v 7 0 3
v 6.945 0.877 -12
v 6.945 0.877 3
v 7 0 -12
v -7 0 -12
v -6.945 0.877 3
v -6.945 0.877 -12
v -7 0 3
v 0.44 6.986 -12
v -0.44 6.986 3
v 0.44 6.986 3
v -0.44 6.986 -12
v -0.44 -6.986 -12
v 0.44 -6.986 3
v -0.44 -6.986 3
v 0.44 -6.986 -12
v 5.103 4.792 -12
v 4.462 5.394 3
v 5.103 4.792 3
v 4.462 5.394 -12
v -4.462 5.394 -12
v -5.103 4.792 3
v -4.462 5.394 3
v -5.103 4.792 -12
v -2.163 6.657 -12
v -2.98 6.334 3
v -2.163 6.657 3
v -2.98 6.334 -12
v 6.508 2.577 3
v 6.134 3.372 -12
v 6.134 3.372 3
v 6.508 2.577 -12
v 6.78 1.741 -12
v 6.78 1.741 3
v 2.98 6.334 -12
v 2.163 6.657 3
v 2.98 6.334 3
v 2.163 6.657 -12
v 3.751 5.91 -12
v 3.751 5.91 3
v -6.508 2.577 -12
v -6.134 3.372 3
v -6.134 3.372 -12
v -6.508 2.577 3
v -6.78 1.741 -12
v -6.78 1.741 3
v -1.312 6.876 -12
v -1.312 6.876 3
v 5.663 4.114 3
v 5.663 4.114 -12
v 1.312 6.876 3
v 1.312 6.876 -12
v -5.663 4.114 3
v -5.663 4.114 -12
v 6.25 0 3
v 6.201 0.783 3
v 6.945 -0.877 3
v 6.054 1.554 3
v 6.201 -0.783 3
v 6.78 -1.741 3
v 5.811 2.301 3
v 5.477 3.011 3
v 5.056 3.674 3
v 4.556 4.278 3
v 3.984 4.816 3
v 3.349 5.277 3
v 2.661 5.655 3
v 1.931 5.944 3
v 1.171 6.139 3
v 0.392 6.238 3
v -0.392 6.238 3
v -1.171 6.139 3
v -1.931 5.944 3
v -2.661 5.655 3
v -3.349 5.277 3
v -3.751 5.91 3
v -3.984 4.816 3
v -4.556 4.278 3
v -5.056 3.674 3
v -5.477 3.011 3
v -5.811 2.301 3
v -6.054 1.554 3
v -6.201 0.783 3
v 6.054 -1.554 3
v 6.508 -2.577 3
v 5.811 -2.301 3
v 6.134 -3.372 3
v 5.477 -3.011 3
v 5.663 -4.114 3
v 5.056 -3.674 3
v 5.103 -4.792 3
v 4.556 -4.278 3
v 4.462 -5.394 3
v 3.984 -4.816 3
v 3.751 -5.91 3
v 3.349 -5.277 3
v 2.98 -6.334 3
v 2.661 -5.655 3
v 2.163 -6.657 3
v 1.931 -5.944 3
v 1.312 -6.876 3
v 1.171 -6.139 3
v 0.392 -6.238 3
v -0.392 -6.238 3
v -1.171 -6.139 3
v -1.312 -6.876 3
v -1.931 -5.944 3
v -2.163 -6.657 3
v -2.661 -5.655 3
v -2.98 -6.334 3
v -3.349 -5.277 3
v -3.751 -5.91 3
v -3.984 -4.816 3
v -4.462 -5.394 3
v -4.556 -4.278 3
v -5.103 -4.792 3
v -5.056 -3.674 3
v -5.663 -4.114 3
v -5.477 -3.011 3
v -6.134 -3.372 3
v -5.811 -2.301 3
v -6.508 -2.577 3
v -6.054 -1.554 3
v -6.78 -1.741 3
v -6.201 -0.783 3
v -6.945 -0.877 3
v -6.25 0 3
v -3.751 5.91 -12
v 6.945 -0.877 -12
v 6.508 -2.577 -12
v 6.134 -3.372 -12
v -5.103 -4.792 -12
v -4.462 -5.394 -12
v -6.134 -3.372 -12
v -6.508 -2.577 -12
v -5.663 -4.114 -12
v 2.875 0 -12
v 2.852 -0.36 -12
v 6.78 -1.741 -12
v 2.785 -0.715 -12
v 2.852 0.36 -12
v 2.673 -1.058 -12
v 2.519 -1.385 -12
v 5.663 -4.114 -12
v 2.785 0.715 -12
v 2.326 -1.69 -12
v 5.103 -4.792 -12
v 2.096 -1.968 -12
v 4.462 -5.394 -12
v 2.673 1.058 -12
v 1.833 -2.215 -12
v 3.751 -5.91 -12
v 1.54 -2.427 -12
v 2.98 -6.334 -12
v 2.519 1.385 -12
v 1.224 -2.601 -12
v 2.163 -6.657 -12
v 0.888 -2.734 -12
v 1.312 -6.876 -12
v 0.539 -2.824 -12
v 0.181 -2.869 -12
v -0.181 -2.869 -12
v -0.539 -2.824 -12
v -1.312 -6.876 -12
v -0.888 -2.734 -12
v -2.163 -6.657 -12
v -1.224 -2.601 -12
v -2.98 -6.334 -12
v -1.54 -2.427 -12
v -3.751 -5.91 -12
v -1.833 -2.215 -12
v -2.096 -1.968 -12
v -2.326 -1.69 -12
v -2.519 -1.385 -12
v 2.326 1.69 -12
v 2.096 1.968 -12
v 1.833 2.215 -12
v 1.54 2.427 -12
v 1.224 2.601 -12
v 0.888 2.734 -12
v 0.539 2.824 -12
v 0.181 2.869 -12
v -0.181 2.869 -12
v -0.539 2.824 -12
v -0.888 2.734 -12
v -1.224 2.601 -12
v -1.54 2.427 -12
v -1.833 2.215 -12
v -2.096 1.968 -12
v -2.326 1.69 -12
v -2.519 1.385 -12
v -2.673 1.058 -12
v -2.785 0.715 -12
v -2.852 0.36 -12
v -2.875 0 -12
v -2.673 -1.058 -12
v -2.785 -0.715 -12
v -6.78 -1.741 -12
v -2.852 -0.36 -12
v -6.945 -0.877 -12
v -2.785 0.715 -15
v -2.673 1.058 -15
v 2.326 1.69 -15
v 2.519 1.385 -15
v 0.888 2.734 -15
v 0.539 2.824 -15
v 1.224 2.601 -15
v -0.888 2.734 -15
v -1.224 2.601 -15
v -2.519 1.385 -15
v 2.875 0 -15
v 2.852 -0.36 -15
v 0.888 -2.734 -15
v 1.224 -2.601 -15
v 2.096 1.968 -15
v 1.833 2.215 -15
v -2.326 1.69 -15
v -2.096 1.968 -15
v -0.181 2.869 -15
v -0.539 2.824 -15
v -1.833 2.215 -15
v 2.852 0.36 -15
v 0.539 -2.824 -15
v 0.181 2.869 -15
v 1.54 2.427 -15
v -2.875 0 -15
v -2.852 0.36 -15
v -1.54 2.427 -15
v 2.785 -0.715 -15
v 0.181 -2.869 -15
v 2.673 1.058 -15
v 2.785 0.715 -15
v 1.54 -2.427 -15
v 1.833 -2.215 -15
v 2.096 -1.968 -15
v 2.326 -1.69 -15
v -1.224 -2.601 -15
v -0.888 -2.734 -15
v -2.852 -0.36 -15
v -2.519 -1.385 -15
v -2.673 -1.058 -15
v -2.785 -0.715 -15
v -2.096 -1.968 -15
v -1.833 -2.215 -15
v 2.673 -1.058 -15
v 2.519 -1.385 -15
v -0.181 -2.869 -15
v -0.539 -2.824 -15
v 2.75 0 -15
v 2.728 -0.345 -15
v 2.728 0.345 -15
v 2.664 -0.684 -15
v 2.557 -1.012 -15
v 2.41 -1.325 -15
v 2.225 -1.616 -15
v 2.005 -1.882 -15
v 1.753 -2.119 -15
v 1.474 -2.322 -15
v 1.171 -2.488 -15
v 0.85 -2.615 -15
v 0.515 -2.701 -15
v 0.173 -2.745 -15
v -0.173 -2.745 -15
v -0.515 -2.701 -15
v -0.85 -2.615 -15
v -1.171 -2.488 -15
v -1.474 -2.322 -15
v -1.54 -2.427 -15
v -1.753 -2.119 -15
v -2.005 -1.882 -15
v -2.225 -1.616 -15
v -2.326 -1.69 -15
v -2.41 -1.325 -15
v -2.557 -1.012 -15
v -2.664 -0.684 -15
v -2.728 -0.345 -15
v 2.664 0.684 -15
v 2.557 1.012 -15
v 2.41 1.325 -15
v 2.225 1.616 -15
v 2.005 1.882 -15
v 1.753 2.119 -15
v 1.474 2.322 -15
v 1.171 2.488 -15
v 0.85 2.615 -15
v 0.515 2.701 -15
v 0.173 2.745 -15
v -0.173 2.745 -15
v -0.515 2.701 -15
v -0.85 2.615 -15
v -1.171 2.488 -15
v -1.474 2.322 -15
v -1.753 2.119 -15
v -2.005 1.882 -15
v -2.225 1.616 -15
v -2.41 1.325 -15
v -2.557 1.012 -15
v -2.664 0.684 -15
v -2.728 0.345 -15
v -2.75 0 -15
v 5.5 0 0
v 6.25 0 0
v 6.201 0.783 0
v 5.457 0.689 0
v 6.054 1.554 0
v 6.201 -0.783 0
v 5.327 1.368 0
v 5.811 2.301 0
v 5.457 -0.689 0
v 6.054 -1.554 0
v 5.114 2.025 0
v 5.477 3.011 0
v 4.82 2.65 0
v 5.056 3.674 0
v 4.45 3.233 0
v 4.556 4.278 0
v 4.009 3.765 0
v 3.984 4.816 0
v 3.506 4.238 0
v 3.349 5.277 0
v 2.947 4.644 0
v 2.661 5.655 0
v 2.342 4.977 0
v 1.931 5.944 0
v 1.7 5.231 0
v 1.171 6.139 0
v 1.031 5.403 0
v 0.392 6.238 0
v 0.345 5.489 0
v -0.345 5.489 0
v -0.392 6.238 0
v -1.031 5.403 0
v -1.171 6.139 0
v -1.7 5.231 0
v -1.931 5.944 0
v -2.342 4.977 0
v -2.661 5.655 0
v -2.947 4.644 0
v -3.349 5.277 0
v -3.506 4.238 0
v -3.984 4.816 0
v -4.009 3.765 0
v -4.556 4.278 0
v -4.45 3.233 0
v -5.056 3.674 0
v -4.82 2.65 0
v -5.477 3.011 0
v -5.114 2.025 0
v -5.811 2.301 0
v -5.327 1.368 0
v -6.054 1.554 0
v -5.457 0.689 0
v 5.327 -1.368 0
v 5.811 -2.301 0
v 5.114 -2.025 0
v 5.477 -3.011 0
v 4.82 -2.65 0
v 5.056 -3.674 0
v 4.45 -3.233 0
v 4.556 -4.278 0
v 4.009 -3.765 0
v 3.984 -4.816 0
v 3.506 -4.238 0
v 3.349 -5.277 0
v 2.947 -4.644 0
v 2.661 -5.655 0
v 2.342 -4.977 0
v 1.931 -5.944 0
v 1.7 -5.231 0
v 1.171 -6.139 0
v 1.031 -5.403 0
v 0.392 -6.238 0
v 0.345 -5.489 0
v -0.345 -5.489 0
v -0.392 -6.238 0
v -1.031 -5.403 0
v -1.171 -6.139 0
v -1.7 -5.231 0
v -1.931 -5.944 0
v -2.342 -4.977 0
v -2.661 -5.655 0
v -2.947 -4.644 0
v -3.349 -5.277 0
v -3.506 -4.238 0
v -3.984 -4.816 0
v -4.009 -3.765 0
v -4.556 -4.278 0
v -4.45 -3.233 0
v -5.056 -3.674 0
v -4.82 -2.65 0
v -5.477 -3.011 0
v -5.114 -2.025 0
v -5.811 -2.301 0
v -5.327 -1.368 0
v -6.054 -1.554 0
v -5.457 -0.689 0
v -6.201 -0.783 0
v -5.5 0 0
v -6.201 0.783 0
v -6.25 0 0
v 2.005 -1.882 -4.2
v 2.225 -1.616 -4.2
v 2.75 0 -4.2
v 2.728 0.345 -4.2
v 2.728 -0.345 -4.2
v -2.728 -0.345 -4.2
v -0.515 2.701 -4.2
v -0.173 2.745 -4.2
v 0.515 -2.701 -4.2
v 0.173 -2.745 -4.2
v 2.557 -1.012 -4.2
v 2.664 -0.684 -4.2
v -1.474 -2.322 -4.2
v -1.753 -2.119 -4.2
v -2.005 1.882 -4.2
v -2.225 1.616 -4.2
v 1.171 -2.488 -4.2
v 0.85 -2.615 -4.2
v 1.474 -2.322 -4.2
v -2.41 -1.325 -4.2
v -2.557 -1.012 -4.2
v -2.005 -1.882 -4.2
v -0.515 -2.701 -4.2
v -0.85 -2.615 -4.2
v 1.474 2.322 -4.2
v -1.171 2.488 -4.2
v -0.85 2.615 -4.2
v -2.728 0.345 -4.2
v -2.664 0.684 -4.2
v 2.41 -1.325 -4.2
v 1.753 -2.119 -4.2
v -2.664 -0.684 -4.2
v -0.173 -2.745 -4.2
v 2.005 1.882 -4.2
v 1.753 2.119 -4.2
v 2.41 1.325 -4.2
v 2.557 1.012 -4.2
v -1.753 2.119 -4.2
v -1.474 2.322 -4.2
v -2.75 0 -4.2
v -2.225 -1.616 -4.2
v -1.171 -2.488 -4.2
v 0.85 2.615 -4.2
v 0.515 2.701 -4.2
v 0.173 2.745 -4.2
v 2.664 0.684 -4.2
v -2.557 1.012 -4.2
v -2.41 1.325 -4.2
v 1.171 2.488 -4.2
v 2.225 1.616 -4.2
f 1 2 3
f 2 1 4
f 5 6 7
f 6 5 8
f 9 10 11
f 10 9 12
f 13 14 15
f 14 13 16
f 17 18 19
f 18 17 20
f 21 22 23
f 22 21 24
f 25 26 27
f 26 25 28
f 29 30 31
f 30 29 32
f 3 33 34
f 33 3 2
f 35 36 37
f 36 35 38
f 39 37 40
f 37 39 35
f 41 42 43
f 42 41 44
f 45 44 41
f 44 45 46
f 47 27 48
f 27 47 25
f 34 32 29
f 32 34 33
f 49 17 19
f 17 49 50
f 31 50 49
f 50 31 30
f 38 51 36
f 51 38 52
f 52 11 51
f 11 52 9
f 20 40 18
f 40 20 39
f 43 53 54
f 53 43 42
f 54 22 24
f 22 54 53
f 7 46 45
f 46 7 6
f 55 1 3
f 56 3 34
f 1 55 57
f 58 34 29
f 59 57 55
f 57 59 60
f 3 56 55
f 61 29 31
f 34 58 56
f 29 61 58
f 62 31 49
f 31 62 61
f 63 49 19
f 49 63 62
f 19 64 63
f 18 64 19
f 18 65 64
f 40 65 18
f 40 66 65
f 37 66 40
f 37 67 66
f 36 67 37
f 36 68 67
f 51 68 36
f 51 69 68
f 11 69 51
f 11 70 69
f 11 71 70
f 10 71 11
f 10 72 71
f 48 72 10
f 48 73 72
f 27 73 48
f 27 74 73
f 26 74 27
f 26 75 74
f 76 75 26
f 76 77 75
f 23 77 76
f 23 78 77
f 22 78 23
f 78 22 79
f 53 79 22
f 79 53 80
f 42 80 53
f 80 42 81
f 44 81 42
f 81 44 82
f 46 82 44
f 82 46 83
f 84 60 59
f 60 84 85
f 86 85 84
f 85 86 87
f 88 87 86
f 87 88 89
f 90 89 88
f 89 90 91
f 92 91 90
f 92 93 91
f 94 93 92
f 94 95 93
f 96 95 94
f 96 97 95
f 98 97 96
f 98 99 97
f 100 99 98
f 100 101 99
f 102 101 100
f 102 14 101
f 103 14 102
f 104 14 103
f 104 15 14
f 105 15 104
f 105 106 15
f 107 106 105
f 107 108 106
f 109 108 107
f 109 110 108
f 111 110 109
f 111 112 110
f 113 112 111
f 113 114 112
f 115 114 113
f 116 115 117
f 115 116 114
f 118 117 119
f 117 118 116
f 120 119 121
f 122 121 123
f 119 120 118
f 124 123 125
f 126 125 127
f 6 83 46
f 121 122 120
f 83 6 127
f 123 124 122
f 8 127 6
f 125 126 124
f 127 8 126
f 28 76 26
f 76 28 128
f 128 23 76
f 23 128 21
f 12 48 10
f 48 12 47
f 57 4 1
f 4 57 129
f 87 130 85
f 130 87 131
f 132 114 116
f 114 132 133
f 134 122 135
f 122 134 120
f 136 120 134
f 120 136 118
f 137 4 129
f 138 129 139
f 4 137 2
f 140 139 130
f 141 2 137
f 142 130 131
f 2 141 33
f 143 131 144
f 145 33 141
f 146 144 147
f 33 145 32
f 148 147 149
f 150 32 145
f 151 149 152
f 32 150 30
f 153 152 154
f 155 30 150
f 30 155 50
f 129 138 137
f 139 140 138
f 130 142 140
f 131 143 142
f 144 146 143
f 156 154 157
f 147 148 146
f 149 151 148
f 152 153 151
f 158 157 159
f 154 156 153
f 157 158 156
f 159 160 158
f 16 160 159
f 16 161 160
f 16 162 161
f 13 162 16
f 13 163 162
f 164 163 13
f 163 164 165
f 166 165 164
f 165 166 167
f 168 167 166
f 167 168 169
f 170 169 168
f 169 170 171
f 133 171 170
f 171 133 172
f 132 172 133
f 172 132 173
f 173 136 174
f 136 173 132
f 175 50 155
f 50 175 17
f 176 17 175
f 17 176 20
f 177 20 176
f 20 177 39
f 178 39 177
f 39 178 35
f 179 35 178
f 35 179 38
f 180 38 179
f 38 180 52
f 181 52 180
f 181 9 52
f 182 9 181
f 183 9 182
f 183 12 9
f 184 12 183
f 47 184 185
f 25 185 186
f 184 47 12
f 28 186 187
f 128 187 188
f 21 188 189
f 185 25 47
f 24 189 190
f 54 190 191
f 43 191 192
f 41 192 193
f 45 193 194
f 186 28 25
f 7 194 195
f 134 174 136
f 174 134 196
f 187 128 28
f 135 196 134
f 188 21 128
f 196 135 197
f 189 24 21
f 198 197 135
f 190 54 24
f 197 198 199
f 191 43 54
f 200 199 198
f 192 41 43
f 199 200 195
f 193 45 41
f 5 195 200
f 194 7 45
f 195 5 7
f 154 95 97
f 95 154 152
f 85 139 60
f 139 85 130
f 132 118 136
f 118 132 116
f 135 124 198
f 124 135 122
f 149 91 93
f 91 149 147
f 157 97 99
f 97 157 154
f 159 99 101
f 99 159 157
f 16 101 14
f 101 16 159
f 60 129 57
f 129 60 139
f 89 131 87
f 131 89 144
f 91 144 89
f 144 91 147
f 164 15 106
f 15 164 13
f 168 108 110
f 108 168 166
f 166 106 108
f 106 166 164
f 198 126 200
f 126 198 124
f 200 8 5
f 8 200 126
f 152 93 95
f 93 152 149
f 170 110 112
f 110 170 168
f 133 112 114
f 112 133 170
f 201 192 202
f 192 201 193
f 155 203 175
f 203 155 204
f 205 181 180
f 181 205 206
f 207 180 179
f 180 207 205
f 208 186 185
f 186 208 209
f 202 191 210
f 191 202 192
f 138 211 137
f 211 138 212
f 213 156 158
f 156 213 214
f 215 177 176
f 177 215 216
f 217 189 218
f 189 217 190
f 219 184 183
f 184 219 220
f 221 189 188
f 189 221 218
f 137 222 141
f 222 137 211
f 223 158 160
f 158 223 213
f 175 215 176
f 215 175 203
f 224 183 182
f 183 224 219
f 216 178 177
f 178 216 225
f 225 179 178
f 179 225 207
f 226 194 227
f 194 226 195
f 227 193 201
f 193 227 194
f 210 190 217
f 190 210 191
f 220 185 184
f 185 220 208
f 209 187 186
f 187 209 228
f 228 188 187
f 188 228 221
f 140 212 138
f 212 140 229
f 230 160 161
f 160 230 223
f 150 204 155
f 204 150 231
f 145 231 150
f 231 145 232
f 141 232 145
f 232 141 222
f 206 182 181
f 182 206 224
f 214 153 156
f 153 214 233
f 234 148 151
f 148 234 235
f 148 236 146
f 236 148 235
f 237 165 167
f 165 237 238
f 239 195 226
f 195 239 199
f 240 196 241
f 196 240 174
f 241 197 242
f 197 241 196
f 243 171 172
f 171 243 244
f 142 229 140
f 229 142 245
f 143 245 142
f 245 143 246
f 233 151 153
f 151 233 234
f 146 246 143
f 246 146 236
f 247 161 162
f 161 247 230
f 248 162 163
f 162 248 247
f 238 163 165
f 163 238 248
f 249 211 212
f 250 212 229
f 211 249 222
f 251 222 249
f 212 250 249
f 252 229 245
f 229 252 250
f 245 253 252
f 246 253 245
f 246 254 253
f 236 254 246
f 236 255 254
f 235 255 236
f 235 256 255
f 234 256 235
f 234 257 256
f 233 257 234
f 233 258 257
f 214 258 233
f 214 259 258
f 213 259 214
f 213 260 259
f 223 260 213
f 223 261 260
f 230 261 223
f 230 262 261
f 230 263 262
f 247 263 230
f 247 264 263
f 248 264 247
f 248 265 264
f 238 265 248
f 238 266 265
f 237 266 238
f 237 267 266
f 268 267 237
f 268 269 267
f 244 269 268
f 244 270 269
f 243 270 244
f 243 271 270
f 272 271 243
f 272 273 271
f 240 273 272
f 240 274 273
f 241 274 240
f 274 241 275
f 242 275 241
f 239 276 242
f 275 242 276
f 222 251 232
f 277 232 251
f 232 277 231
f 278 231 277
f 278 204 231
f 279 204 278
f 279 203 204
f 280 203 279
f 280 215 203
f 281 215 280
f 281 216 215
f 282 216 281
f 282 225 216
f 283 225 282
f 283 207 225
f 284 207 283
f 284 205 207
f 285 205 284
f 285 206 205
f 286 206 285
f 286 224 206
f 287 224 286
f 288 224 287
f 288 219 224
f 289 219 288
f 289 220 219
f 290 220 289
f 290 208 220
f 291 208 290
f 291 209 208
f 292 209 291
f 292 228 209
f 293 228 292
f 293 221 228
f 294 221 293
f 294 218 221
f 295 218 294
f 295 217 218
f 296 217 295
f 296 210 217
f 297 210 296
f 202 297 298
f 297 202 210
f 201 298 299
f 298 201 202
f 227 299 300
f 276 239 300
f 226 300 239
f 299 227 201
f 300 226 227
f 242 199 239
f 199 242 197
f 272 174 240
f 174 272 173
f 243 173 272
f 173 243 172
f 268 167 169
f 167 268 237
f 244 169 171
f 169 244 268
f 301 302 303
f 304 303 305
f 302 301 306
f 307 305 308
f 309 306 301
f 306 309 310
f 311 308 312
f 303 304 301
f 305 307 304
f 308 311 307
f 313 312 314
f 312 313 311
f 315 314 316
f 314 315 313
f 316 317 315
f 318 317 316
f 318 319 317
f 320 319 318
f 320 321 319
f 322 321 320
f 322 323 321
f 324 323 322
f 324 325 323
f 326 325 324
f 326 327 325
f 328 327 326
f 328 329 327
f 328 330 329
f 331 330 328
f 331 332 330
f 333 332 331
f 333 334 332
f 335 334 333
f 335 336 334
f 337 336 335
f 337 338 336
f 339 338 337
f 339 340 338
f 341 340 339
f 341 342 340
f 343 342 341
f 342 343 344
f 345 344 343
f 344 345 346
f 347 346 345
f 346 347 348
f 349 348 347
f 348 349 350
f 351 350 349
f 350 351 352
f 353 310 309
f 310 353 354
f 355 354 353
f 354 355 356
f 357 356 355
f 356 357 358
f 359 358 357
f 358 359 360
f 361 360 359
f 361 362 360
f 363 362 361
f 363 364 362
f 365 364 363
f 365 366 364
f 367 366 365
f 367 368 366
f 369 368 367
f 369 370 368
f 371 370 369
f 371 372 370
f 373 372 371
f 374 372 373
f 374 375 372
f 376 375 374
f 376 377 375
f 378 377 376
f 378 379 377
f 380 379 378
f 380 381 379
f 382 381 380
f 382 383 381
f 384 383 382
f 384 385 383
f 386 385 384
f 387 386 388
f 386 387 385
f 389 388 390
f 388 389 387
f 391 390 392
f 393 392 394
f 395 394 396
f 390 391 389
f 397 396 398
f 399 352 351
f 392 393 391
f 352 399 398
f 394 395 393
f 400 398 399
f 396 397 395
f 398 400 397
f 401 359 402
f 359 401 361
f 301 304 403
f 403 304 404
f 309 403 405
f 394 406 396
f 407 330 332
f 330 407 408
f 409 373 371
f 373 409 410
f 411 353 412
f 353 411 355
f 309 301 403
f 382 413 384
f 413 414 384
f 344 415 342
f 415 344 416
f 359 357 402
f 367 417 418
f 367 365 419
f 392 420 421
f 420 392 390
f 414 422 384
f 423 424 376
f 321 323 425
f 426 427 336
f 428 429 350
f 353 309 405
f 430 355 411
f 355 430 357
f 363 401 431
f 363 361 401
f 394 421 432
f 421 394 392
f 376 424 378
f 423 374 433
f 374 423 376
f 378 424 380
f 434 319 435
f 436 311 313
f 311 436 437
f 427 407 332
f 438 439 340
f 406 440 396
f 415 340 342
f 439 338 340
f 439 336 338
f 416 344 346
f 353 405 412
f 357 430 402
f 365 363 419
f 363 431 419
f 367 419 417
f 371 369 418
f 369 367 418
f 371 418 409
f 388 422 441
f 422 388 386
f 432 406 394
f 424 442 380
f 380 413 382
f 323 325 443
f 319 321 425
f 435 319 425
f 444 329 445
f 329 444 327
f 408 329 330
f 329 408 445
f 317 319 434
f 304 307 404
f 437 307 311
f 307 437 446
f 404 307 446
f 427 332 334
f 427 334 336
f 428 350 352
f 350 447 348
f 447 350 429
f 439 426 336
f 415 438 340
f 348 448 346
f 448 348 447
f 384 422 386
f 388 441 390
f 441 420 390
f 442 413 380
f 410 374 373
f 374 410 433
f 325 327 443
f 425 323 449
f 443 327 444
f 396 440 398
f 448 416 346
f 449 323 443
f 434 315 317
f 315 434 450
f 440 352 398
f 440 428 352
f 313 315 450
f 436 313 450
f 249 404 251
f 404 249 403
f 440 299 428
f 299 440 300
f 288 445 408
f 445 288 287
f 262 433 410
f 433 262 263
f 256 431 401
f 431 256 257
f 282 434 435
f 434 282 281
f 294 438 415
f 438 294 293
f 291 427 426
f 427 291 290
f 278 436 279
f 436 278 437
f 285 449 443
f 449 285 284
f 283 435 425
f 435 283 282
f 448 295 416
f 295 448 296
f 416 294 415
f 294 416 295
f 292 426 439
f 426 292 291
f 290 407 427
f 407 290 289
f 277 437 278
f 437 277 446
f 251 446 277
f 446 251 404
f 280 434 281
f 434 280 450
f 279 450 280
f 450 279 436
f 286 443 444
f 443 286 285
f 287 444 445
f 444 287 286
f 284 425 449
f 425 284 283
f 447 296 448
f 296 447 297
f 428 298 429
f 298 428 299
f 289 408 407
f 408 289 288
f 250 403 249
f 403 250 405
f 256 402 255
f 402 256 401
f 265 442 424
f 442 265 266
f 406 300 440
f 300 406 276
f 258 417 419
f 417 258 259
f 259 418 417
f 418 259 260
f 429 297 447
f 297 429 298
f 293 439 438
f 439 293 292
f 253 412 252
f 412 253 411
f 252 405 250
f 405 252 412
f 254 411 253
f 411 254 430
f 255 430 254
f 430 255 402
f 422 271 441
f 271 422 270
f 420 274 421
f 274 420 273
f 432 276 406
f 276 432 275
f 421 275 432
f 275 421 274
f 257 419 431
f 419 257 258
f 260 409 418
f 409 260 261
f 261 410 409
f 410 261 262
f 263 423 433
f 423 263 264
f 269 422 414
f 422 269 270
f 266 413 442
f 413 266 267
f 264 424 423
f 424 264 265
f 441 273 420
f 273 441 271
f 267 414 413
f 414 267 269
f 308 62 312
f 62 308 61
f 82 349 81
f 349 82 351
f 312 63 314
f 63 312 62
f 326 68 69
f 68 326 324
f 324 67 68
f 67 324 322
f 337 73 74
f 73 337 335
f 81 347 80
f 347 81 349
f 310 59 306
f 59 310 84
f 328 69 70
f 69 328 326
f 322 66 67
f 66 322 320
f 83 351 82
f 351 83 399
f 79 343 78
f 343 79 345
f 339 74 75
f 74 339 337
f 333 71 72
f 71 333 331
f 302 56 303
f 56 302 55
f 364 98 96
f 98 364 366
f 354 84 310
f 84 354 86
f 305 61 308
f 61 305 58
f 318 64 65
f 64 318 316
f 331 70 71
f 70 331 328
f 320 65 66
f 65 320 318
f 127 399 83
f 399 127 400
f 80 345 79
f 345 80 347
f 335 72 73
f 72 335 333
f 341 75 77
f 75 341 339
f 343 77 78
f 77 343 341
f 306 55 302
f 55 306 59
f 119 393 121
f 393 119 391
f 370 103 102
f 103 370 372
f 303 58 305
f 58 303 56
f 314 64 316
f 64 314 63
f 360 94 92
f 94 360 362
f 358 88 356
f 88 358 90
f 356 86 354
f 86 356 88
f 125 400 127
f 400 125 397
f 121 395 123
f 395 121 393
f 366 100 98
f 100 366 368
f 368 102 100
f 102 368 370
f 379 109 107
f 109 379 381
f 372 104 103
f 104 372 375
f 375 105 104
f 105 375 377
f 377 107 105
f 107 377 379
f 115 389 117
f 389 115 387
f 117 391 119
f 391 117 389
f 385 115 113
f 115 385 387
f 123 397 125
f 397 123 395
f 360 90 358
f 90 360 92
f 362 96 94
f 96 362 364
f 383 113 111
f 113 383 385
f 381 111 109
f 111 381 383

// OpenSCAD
$fn = 50;


difference() {
	union() {
		translate(v = [0, 0, -12.0000000000]) {
			cylinder(h = 15, r = 7.0000000000);
		}
		#translate(v = [0, 0, -15.0000000000]) {
			cylinder(h = 15, r = 2.8750000000);
		}
	}
	union() {
		translate(v = [0, 0, 0]) {
			rotate(a = [0, 0, 0]) {
				difference() {
					union() {
						translate(v = [0, 0, -15.0000000000]) {
							cylinder(h = 15, r = 2.2500000000);
						}
						translate(v = [0, 0, -4.2000000000]) {
							cylinder(h = 4.2000000000, r1 = 2.7500000000, r2 = 5.5000000000);
						}
						translate(v = [0, 0, -15.0000000000]) {
							cylinder(h = 15, r = 2.7500000000);
						}
						translate(v = [0, 0, -15.0000000000]) {
							cylinder(h = 15, r = 2.2500000000);
						}
					}
					union();
				}
			}
		}
		#cylinder(h = 3, r = 6.2500000000);
	}
}
